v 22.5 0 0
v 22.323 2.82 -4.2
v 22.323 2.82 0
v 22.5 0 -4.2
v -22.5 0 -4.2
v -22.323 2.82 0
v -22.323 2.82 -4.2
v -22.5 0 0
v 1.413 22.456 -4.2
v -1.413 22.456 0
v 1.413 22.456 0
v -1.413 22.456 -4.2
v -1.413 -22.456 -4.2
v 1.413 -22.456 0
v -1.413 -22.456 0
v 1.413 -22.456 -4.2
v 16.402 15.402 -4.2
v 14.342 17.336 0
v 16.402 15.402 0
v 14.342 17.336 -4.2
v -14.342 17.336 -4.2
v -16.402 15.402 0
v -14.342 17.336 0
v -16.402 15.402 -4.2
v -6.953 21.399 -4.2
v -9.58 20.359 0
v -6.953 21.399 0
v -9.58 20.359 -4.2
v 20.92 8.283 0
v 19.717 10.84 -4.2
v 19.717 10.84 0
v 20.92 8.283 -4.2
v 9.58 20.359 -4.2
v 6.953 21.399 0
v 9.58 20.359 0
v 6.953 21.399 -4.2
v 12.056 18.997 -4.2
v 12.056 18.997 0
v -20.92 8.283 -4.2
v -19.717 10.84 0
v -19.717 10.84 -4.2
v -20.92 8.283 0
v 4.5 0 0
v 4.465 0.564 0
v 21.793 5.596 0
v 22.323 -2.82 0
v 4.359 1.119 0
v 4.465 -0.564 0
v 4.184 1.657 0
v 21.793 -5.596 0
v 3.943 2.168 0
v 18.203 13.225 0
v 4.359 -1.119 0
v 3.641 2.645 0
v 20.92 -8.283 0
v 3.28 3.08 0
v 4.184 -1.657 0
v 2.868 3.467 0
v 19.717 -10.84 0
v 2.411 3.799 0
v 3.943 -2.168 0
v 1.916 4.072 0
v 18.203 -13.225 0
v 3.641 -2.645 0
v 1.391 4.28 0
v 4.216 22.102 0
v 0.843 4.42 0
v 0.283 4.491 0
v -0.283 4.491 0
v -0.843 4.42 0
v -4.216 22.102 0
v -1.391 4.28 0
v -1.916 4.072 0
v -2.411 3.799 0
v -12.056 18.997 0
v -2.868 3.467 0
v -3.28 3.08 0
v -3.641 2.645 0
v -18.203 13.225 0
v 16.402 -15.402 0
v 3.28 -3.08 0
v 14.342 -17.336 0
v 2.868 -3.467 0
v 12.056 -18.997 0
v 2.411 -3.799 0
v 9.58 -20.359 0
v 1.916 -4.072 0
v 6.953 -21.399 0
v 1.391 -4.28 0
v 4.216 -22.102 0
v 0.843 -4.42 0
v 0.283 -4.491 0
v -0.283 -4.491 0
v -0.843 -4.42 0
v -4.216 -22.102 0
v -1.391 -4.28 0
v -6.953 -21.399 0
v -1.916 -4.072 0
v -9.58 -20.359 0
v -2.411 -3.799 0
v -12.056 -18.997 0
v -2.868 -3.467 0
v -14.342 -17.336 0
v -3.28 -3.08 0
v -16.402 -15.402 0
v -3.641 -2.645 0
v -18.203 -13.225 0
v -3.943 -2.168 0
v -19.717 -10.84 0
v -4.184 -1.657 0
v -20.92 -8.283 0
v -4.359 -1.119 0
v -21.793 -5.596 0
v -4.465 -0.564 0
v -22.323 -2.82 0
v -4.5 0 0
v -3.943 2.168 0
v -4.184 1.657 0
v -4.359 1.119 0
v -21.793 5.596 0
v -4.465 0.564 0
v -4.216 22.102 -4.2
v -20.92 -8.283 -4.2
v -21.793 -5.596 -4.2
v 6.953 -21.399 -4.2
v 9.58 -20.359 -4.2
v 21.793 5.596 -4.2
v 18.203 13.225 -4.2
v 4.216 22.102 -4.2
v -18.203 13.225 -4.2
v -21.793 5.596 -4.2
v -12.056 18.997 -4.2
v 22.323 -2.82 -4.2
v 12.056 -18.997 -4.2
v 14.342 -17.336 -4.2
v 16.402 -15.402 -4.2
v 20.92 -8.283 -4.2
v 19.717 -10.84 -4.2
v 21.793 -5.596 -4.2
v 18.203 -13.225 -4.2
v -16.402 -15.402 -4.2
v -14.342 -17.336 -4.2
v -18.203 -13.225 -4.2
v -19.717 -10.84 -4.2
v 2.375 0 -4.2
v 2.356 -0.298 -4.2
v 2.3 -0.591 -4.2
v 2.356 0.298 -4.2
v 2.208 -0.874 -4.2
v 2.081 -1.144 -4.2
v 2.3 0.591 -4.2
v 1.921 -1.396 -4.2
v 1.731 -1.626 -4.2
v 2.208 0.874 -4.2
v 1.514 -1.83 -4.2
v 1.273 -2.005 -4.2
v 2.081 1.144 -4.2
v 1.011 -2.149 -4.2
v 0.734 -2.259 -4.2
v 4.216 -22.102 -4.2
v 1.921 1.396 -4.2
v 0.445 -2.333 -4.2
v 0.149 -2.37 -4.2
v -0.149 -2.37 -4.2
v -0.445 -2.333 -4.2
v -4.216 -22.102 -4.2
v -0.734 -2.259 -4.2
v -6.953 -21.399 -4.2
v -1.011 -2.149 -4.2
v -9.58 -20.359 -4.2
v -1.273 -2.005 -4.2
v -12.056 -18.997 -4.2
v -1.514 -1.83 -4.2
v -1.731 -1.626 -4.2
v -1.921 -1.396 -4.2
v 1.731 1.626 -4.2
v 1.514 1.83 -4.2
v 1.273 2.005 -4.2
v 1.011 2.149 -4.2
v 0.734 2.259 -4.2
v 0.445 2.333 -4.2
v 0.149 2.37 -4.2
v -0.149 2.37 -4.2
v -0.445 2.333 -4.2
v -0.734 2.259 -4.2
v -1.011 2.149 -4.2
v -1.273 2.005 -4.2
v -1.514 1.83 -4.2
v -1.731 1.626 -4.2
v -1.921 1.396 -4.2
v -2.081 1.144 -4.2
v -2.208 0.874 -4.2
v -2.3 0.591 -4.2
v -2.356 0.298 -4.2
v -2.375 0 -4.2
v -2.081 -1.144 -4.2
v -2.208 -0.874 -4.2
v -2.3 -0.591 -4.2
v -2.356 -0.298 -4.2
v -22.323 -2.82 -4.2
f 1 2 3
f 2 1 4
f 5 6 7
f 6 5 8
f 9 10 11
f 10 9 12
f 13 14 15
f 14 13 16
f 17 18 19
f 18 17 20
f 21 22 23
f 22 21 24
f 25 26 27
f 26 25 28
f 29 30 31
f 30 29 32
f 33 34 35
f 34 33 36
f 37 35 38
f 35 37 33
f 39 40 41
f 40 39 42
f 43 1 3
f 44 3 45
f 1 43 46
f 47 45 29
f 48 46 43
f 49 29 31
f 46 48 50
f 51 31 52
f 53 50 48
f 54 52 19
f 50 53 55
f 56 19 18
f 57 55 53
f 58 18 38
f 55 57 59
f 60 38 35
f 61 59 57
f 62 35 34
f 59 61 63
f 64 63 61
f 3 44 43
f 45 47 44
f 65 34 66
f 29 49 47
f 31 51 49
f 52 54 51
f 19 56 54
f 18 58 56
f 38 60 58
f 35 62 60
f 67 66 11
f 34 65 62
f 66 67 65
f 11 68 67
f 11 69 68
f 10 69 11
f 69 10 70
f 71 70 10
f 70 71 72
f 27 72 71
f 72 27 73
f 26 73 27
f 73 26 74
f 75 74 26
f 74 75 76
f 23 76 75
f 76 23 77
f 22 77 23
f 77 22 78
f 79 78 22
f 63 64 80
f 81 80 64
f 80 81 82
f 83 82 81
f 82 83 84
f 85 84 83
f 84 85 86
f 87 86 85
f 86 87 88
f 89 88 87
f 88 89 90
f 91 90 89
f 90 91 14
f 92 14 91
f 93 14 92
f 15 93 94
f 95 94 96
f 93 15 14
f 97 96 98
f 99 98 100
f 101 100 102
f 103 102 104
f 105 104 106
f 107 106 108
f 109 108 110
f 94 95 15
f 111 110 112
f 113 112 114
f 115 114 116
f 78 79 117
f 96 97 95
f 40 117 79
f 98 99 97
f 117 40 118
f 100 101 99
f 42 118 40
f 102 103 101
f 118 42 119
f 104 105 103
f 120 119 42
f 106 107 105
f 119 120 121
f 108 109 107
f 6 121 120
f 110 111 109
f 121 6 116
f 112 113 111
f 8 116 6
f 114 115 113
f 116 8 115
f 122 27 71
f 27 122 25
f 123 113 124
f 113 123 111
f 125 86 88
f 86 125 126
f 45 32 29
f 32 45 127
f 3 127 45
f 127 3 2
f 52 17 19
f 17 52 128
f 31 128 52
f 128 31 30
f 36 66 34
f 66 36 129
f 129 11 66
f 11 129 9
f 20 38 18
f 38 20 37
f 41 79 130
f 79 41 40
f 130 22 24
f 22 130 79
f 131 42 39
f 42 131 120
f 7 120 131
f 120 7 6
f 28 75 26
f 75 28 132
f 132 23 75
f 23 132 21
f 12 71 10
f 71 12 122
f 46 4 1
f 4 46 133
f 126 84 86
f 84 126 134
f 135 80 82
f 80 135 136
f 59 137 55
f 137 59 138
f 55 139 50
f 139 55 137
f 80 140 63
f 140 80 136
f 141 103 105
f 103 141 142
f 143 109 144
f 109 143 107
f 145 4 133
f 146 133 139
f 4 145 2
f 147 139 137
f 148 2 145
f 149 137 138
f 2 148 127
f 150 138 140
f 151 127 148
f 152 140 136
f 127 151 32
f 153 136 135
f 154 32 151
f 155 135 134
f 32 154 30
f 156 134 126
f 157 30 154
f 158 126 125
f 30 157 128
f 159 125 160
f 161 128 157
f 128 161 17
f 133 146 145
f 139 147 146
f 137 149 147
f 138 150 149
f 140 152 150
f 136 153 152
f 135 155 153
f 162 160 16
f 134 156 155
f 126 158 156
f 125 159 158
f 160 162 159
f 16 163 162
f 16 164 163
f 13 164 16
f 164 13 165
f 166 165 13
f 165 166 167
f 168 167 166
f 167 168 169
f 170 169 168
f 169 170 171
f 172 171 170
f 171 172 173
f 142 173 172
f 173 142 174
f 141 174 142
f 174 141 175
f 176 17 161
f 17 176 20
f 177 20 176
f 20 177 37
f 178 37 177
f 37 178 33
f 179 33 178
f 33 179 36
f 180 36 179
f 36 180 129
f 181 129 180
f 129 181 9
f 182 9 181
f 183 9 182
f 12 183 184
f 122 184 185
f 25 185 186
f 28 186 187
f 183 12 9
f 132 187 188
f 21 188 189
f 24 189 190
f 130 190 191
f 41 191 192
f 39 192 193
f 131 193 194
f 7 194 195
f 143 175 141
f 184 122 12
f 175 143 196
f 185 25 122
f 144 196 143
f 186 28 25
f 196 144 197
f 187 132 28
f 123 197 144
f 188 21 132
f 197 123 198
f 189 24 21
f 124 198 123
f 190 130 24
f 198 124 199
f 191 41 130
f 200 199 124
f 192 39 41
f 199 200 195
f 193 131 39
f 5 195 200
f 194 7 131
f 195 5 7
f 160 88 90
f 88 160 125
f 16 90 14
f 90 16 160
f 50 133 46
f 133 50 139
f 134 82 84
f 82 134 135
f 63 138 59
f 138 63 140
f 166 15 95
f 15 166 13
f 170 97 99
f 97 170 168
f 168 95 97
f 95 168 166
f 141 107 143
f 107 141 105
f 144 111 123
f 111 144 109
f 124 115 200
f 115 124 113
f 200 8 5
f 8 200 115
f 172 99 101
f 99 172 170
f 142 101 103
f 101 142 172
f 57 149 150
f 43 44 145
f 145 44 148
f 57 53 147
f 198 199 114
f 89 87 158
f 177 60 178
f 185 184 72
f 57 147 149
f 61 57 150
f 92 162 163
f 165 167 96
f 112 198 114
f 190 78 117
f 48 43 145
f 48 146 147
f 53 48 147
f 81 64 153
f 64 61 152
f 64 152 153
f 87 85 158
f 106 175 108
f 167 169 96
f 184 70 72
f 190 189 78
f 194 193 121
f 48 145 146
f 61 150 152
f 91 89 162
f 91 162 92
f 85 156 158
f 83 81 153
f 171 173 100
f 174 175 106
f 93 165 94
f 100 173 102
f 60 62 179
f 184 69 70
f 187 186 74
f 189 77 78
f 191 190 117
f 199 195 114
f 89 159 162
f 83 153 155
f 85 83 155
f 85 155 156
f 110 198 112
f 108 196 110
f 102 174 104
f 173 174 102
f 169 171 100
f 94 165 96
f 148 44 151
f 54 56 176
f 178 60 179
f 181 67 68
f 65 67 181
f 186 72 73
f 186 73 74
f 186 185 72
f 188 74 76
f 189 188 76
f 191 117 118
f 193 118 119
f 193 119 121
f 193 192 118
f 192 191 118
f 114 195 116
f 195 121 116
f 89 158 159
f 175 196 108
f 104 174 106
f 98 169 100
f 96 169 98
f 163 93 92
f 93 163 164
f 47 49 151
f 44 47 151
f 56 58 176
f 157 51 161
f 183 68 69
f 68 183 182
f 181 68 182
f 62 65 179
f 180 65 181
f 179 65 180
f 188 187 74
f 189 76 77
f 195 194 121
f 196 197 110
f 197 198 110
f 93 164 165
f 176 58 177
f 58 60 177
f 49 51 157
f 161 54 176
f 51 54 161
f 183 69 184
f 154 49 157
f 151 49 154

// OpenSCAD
$fn = 50;


difference() {
	union() {
		translate(v = [0, 0, -4.2000000000]) {
			cylinder(h = 4.2000000000, r = 22.5000000000);
		}
		translate(v = [0, 0, -4.2000000000]) {
			cylinder(h = 4.2000000000, r = 2.8750000000);
		}
	}
	union() {
		translate(v = [0, 0, 0]) {
			rotate(a = [0, 0, 0]) {
				difference() {
					union() {
						#translate(v = [0, 0, -4.2000000000]) {
							cylinder(h = 4.2000000000, r = 2.2500000000);
						}
						#translate(v = [0, 0, -4.2000000000]) {
							cylinder(h = 4.2000000000, r1 = 2.3750000000, r2 = 4.5000000000);
						}
						#translate(v = [0, 0, -4.2000000000]) {
							cylinder(h = 4.2000000000, r = 2.3750000000);
						}
						#translate(v = [0, 0, -4.2000000000]) {
							cylinder(h = 4.2000000000, r = 2.2500000000);
						}
					}
					union();
				}
			}
		}
	}
}
